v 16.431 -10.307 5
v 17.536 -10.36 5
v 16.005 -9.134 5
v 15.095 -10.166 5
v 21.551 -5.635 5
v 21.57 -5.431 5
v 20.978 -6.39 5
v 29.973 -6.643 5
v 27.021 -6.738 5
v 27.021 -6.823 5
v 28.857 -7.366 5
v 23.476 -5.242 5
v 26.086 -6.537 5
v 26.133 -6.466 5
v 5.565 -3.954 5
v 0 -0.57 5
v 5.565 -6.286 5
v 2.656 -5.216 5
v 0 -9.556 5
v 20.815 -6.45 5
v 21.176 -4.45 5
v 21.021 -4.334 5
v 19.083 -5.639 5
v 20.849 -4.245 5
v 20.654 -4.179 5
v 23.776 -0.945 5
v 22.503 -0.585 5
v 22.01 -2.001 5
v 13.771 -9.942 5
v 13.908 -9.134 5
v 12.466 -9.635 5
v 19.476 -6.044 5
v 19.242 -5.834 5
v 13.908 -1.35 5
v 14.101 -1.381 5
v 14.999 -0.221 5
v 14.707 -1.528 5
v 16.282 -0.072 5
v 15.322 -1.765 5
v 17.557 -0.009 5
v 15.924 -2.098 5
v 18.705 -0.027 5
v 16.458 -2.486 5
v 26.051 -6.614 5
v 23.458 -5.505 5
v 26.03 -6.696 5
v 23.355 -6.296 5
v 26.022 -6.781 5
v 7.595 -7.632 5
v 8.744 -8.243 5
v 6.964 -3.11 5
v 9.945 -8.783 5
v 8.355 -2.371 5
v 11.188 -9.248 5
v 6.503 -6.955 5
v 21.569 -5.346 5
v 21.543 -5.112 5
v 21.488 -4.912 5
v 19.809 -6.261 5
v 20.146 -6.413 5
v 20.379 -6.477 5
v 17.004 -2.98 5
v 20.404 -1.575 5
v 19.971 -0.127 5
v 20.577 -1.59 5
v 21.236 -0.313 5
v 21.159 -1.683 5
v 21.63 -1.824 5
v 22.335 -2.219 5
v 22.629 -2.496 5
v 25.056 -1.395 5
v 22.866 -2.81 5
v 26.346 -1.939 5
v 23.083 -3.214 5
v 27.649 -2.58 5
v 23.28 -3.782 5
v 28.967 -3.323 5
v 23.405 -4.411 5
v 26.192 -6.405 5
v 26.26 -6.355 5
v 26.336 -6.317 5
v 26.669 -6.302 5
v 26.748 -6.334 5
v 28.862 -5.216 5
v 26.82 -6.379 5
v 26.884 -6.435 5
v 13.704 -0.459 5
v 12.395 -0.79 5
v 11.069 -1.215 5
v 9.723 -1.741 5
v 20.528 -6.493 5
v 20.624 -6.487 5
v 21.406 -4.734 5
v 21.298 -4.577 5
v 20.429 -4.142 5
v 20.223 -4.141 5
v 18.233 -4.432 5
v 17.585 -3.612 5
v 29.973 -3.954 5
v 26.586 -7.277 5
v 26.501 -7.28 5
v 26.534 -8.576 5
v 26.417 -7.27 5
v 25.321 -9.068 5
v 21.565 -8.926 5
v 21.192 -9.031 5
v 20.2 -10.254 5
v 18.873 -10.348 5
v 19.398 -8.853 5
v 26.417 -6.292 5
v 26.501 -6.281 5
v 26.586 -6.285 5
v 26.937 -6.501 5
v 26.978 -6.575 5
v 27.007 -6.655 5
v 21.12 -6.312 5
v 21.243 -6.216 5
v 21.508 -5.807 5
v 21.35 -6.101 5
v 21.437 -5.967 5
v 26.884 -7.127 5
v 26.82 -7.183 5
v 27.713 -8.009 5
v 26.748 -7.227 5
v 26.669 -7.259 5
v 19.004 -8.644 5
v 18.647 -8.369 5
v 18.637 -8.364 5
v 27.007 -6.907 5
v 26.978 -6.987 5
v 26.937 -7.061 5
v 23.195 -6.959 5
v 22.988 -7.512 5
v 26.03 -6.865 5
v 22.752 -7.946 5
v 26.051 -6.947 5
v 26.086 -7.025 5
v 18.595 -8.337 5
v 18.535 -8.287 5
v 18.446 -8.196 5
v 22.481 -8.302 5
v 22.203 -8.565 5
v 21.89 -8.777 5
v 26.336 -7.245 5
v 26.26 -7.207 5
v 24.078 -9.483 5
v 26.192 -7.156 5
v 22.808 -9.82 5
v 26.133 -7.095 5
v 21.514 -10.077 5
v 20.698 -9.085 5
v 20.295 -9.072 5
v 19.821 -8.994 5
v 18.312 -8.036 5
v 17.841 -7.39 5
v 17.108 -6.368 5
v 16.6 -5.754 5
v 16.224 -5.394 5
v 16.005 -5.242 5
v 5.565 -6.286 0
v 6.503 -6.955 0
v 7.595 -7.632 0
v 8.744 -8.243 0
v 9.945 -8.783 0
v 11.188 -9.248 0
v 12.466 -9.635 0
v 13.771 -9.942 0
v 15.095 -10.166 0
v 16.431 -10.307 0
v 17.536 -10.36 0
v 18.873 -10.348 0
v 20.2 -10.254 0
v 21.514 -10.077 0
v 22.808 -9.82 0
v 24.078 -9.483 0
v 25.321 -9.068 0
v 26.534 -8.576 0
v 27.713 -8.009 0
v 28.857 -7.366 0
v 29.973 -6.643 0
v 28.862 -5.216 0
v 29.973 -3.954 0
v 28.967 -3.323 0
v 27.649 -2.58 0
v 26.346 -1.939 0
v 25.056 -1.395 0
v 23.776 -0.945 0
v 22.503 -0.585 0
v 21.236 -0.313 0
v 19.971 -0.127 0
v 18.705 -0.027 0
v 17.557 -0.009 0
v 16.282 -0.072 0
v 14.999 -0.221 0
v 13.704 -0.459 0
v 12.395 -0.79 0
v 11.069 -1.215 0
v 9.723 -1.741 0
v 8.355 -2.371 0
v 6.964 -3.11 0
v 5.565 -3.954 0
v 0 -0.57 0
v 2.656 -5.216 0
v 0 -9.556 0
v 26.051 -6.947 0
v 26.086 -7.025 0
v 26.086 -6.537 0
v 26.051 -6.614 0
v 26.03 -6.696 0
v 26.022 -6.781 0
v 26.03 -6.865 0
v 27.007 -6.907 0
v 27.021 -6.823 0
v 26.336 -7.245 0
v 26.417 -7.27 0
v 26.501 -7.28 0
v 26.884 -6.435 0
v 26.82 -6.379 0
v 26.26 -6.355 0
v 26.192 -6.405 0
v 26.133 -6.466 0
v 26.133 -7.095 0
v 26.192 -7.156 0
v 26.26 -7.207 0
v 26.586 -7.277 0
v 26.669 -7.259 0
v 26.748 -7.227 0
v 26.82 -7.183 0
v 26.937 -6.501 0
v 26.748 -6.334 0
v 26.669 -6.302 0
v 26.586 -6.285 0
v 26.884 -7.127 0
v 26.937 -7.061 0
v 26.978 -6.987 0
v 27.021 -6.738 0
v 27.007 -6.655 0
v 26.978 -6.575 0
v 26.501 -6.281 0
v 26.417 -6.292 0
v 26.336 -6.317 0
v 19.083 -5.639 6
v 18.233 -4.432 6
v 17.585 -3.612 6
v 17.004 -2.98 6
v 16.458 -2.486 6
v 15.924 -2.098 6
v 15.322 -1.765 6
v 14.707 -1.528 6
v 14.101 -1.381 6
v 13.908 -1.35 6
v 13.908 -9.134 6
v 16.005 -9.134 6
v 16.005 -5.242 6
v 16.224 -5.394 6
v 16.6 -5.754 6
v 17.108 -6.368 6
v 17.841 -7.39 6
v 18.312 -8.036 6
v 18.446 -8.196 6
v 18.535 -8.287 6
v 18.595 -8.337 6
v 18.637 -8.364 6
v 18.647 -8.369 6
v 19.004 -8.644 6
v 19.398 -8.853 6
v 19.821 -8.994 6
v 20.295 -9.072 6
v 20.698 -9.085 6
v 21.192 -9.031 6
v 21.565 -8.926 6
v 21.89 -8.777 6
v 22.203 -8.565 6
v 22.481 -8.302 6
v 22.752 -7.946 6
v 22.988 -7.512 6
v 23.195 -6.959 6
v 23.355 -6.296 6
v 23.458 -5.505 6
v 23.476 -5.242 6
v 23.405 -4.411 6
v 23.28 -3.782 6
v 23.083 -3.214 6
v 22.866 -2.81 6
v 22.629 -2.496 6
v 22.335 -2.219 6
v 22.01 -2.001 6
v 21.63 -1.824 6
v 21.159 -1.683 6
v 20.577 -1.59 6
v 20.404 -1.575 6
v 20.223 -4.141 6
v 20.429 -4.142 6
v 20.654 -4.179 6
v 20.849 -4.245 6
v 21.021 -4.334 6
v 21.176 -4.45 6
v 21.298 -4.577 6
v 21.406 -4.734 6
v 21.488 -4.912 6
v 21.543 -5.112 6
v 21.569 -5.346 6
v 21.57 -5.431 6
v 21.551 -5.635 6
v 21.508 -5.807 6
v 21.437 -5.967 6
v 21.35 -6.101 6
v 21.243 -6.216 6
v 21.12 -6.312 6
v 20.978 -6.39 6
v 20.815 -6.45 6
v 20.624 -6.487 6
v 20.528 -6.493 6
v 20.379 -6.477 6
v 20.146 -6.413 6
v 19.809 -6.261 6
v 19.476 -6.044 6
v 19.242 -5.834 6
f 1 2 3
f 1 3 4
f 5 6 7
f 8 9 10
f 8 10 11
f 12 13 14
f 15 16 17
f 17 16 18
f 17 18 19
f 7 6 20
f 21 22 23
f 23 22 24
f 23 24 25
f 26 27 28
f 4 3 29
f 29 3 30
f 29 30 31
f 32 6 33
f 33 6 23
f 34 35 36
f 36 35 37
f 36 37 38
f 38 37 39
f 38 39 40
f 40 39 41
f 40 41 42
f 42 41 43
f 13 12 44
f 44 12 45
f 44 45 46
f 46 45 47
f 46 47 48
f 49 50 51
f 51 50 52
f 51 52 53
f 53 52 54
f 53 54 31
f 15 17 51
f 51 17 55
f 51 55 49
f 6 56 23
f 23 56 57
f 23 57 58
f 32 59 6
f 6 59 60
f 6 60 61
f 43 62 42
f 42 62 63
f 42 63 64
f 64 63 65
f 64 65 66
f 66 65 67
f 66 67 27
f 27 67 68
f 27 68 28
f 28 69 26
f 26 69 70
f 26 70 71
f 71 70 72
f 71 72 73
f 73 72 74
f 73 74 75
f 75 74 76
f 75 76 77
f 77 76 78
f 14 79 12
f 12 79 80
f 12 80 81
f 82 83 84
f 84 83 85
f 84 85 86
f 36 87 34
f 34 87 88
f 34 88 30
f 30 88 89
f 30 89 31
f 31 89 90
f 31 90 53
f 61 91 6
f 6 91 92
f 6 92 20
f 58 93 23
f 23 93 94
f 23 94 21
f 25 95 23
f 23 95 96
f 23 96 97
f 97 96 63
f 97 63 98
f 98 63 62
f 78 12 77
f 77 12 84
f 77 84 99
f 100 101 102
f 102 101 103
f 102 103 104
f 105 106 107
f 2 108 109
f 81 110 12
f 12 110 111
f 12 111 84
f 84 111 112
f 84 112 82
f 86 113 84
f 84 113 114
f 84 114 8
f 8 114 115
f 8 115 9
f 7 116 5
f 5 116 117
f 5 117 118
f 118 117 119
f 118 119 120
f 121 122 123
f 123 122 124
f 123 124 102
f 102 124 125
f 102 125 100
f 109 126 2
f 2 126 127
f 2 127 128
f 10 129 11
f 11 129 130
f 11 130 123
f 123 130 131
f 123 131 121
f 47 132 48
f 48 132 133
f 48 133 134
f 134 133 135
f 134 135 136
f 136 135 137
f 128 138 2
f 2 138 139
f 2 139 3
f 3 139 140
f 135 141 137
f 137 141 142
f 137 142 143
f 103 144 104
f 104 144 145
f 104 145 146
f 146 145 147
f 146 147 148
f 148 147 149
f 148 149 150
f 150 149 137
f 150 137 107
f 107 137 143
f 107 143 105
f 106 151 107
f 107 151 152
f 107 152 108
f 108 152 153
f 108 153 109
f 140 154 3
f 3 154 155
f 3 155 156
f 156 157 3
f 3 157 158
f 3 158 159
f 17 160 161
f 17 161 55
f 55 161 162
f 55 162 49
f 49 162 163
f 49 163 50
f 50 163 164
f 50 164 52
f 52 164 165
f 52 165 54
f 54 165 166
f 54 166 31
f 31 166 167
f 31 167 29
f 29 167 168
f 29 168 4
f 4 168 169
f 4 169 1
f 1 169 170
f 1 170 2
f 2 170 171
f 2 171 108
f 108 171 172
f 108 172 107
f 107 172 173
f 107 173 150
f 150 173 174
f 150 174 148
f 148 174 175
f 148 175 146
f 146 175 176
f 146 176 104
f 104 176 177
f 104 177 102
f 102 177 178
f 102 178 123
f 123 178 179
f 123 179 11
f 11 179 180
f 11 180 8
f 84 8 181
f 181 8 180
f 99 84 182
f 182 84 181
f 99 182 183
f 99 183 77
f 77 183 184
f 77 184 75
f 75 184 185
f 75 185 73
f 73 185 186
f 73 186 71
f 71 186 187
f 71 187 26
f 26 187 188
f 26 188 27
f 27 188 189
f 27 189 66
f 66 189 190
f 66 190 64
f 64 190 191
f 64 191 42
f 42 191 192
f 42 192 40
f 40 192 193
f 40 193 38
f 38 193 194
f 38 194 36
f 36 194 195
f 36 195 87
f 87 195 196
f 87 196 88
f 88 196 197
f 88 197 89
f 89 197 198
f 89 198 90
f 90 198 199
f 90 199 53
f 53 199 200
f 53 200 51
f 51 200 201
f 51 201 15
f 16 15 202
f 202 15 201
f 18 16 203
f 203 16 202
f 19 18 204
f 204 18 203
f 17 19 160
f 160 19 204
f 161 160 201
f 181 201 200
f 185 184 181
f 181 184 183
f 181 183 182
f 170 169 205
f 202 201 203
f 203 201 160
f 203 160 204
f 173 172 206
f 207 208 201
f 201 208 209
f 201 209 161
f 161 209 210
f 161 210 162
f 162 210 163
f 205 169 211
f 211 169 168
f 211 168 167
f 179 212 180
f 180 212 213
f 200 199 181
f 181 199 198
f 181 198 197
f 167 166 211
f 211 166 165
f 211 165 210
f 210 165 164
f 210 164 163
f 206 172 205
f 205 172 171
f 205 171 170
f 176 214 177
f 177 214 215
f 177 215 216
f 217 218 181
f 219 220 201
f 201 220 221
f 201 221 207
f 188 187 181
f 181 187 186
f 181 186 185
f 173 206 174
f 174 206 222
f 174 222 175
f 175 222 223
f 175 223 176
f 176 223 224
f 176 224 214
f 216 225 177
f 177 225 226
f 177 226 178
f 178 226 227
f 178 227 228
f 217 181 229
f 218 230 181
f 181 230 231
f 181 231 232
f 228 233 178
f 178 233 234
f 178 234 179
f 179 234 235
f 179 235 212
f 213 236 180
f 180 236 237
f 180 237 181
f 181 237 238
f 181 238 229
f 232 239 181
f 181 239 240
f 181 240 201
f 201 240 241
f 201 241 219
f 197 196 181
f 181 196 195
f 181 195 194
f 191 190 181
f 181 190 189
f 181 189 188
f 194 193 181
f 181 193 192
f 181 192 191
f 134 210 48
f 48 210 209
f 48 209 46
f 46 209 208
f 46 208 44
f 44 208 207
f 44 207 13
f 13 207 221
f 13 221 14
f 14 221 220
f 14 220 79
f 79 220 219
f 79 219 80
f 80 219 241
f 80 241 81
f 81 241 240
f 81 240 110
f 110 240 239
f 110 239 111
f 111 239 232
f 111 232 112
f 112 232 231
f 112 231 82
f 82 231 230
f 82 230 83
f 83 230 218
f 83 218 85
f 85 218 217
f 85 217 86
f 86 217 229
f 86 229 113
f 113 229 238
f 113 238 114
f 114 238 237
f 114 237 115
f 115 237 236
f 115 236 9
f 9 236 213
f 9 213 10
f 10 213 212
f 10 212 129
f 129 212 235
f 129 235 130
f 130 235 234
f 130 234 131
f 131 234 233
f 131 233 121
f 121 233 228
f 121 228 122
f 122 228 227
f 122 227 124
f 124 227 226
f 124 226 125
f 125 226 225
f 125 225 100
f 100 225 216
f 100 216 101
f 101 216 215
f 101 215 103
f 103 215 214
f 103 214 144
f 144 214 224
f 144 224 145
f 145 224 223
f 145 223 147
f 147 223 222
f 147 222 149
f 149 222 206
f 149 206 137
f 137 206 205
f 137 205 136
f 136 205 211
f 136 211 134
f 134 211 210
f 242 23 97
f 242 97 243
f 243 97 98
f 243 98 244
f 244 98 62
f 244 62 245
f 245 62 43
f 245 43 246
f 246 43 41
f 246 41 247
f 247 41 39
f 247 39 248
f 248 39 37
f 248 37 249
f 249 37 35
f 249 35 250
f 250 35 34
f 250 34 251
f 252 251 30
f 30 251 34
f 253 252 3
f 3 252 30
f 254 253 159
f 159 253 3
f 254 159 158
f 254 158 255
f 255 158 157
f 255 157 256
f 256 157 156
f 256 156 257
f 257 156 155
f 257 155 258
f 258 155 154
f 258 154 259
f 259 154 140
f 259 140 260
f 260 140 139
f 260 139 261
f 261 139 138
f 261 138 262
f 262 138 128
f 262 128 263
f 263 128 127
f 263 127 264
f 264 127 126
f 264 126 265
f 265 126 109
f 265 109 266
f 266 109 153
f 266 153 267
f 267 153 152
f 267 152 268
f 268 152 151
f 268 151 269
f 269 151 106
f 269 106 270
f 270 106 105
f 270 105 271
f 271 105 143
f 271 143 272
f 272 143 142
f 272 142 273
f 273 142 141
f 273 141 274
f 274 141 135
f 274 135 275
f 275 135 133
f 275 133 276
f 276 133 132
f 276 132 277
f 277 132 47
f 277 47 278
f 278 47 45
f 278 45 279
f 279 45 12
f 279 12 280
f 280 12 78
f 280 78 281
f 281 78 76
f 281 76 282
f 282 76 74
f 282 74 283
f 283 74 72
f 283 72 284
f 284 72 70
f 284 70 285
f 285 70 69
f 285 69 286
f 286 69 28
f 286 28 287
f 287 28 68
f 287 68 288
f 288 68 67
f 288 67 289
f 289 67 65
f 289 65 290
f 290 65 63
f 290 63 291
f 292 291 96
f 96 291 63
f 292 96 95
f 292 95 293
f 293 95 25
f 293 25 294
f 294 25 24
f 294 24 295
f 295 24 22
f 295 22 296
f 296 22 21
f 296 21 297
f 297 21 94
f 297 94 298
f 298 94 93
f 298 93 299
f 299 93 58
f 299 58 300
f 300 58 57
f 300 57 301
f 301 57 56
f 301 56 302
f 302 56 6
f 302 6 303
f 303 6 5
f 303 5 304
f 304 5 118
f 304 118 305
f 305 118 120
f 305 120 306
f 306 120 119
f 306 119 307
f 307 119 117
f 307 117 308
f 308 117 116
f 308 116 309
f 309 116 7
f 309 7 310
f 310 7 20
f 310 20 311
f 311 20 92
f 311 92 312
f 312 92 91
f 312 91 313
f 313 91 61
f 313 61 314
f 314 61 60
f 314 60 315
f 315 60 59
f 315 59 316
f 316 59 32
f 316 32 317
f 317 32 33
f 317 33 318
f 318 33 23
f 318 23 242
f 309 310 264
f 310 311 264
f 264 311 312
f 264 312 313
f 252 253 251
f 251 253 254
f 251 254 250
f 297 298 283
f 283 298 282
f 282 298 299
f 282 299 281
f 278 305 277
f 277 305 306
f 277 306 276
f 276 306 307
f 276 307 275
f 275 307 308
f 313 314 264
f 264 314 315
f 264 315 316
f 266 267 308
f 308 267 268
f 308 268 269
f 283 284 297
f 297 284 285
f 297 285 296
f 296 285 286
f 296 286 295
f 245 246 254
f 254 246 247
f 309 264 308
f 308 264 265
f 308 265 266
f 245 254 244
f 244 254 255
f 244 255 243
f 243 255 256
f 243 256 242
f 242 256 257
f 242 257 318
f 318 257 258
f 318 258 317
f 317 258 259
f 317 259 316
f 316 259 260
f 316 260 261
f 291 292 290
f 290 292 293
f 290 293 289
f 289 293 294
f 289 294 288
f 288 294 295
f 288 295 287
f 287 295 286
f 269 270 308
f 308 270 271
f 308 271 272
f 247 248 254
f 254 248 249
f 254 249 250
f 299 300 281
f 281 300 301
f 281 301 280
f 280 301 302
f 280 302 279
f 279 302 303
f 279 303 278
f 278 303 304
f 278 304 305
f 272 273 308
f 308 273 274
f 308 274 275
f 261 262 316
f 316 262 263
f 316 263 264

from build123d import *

# Parameters (mm, degrees)
SKETCH2_R           = 0.500109693
BOSS_EXTRUDE1_DEPTH = 5
BOSS_EXTRUDE2_DEPTH = 1


with BuildPart() as part:
    # Sketch2 → Boss-Extrude1 (new body)
    with BuildSketch(Plane(origin=(0, 0, 0), x_dir=(1, 0, 0), z_dir=(0, 0, -1))):
        with BuildLine():
            Line((29.97295835, 6.642737104), (28.862437793, 5.215722686))
            Line((28.862437793, 5.215722686), (29.97295835, 3.953817374))
            add(Edge.make_bspline(
                [(5.565346412, 3.953817374), (17.919076804, -3.939717318), (29.97295835, 3.953817374)],
                knots=[0, 0, 0, 1, 1, 1], degree=2))
            Line((5.565346412, 3.953817374), (0, 0.570103483))
            Line((0, 0.570103483), (2.65645961, 5.215722686))
            Line((2.65645961, 5.215722686), (0, 9.556126627))
            Line((0, 9.556126627), (5.565346412, 6.285726684))
            add(Edge.make_bspline(
                [(5.565346412, 6.285726684), (12.037313538, 11.217277608), (22.14175538, 12.07873787), (29.97295835, 6.642737104)],
                knots=[0, 0, 0, 0, 1, 1, 1, 1], degree=3))
        make_face()
        with Locations(Location((26.5225963, 6.780666166, 0), (0, 0, 180))):
            Circle(SKETCH2_R, mode=Mode.SUBTRACT)
    extrude(amount=-BOSS_EXTRUDE1_DEPTH)

    # Sketch4 → Boss-Extrude2 (add)
    with BuildSketch(Plane(origin=(0, 0, 5), x_dir=(-1, 0, 0), z_dir=(0, 0, 1))):
        with BuildLine():
            Line((-13.908305334, 1.34956402), (-13.908305334, 9.133973525))
            Line((-13.908305334, 9.133973525), (-16.004621445, 9.133973525))
            Line((-16.004621445, 9.133973525), (-16.004621445, 5.241768773))
            add(Edge.make_bspline(
                [(-16.004621445, 5.241768773), (-16.954182776, 5.785448359), (-18.2214925, 8.172395217), (-18.647004572, 8.368785404)],
                knots=[0, 0, 0, 0, 1, 1, 1, 1], degree=3))
            add(Edge.make_bspline(
                [(-18.647004572, 8.368785404), (-19.182278095, 8.856654309), (-19.866173762, 9.102220728), (-20.698347409, 9.084883777)],
                knots=[0, 0, 0, 0, 1, 1, 1, 1], degree=3))
            add(Edge.make_bspline(
                [(-20.698347409, 9.084883777), (-22.350260741, 9.040072434), (-23.33079469, 7.762774595), (-23.476488694, 5.241768773)],
                knots=[0, 0, 0, 0, 1, 1, 1, 1], degree=3))
            add(Edge.make_bspline(
                [(-20.404496328, 1.575368175), (-22.334339213, 1.71536757), (-23.381711079, 2.669128019), (-23.476488694, 5.241768773)],
                knots=[0, 0, 0, 0, 1, 1, 1, 1], degree=3))
            Line((-20.404496328, 1.575368175), (-20.223319436, 4.140832963))
            add(Edge.make_bspline(
                [(-21.56956029, 5.431442564), (-21.582844794, 4.484850448), (-20.84335959, 4.096124714), (-20.223319436, 4.140832963)],
                knots=[0, 0, 0, 0, 1, 1, 1, 1], degree=3))
            add(Edge.make_bspline(
                [(-20.623882844, 6.487488573), (-21.093503681, 6.435159023), (-21.557848723, 6.102593618), (-21.56956029, 5.431442564)],
                knots=[0, 0, 0, 0, 1, 1, 1, 1], degree=3))
            add(Edge.make_bspline(
                [(-19.082560895, 5.639341249), (-19.40985103, 6.125934593), (-20.210193184, 6.544584723), (-20.623882844, 6.487488573)],
                knots=[0, 0, 0, 0, 1, 1, 1, 1], degree=3))
            add(Edge.make_bspline(
                [(-13.908305334, 1.34956402), (-16.125553437, 1.670916535), (-17.437876782, 3.20471995), (-19.082560895, 5.639341249)],
                knots=[0, 0, 0, 0, 1, 1, 1, 1], degree=3))
        make_face()
    extrude(amount=BOSS_EXTRUDE2_DEPTH)


solid = part.part
